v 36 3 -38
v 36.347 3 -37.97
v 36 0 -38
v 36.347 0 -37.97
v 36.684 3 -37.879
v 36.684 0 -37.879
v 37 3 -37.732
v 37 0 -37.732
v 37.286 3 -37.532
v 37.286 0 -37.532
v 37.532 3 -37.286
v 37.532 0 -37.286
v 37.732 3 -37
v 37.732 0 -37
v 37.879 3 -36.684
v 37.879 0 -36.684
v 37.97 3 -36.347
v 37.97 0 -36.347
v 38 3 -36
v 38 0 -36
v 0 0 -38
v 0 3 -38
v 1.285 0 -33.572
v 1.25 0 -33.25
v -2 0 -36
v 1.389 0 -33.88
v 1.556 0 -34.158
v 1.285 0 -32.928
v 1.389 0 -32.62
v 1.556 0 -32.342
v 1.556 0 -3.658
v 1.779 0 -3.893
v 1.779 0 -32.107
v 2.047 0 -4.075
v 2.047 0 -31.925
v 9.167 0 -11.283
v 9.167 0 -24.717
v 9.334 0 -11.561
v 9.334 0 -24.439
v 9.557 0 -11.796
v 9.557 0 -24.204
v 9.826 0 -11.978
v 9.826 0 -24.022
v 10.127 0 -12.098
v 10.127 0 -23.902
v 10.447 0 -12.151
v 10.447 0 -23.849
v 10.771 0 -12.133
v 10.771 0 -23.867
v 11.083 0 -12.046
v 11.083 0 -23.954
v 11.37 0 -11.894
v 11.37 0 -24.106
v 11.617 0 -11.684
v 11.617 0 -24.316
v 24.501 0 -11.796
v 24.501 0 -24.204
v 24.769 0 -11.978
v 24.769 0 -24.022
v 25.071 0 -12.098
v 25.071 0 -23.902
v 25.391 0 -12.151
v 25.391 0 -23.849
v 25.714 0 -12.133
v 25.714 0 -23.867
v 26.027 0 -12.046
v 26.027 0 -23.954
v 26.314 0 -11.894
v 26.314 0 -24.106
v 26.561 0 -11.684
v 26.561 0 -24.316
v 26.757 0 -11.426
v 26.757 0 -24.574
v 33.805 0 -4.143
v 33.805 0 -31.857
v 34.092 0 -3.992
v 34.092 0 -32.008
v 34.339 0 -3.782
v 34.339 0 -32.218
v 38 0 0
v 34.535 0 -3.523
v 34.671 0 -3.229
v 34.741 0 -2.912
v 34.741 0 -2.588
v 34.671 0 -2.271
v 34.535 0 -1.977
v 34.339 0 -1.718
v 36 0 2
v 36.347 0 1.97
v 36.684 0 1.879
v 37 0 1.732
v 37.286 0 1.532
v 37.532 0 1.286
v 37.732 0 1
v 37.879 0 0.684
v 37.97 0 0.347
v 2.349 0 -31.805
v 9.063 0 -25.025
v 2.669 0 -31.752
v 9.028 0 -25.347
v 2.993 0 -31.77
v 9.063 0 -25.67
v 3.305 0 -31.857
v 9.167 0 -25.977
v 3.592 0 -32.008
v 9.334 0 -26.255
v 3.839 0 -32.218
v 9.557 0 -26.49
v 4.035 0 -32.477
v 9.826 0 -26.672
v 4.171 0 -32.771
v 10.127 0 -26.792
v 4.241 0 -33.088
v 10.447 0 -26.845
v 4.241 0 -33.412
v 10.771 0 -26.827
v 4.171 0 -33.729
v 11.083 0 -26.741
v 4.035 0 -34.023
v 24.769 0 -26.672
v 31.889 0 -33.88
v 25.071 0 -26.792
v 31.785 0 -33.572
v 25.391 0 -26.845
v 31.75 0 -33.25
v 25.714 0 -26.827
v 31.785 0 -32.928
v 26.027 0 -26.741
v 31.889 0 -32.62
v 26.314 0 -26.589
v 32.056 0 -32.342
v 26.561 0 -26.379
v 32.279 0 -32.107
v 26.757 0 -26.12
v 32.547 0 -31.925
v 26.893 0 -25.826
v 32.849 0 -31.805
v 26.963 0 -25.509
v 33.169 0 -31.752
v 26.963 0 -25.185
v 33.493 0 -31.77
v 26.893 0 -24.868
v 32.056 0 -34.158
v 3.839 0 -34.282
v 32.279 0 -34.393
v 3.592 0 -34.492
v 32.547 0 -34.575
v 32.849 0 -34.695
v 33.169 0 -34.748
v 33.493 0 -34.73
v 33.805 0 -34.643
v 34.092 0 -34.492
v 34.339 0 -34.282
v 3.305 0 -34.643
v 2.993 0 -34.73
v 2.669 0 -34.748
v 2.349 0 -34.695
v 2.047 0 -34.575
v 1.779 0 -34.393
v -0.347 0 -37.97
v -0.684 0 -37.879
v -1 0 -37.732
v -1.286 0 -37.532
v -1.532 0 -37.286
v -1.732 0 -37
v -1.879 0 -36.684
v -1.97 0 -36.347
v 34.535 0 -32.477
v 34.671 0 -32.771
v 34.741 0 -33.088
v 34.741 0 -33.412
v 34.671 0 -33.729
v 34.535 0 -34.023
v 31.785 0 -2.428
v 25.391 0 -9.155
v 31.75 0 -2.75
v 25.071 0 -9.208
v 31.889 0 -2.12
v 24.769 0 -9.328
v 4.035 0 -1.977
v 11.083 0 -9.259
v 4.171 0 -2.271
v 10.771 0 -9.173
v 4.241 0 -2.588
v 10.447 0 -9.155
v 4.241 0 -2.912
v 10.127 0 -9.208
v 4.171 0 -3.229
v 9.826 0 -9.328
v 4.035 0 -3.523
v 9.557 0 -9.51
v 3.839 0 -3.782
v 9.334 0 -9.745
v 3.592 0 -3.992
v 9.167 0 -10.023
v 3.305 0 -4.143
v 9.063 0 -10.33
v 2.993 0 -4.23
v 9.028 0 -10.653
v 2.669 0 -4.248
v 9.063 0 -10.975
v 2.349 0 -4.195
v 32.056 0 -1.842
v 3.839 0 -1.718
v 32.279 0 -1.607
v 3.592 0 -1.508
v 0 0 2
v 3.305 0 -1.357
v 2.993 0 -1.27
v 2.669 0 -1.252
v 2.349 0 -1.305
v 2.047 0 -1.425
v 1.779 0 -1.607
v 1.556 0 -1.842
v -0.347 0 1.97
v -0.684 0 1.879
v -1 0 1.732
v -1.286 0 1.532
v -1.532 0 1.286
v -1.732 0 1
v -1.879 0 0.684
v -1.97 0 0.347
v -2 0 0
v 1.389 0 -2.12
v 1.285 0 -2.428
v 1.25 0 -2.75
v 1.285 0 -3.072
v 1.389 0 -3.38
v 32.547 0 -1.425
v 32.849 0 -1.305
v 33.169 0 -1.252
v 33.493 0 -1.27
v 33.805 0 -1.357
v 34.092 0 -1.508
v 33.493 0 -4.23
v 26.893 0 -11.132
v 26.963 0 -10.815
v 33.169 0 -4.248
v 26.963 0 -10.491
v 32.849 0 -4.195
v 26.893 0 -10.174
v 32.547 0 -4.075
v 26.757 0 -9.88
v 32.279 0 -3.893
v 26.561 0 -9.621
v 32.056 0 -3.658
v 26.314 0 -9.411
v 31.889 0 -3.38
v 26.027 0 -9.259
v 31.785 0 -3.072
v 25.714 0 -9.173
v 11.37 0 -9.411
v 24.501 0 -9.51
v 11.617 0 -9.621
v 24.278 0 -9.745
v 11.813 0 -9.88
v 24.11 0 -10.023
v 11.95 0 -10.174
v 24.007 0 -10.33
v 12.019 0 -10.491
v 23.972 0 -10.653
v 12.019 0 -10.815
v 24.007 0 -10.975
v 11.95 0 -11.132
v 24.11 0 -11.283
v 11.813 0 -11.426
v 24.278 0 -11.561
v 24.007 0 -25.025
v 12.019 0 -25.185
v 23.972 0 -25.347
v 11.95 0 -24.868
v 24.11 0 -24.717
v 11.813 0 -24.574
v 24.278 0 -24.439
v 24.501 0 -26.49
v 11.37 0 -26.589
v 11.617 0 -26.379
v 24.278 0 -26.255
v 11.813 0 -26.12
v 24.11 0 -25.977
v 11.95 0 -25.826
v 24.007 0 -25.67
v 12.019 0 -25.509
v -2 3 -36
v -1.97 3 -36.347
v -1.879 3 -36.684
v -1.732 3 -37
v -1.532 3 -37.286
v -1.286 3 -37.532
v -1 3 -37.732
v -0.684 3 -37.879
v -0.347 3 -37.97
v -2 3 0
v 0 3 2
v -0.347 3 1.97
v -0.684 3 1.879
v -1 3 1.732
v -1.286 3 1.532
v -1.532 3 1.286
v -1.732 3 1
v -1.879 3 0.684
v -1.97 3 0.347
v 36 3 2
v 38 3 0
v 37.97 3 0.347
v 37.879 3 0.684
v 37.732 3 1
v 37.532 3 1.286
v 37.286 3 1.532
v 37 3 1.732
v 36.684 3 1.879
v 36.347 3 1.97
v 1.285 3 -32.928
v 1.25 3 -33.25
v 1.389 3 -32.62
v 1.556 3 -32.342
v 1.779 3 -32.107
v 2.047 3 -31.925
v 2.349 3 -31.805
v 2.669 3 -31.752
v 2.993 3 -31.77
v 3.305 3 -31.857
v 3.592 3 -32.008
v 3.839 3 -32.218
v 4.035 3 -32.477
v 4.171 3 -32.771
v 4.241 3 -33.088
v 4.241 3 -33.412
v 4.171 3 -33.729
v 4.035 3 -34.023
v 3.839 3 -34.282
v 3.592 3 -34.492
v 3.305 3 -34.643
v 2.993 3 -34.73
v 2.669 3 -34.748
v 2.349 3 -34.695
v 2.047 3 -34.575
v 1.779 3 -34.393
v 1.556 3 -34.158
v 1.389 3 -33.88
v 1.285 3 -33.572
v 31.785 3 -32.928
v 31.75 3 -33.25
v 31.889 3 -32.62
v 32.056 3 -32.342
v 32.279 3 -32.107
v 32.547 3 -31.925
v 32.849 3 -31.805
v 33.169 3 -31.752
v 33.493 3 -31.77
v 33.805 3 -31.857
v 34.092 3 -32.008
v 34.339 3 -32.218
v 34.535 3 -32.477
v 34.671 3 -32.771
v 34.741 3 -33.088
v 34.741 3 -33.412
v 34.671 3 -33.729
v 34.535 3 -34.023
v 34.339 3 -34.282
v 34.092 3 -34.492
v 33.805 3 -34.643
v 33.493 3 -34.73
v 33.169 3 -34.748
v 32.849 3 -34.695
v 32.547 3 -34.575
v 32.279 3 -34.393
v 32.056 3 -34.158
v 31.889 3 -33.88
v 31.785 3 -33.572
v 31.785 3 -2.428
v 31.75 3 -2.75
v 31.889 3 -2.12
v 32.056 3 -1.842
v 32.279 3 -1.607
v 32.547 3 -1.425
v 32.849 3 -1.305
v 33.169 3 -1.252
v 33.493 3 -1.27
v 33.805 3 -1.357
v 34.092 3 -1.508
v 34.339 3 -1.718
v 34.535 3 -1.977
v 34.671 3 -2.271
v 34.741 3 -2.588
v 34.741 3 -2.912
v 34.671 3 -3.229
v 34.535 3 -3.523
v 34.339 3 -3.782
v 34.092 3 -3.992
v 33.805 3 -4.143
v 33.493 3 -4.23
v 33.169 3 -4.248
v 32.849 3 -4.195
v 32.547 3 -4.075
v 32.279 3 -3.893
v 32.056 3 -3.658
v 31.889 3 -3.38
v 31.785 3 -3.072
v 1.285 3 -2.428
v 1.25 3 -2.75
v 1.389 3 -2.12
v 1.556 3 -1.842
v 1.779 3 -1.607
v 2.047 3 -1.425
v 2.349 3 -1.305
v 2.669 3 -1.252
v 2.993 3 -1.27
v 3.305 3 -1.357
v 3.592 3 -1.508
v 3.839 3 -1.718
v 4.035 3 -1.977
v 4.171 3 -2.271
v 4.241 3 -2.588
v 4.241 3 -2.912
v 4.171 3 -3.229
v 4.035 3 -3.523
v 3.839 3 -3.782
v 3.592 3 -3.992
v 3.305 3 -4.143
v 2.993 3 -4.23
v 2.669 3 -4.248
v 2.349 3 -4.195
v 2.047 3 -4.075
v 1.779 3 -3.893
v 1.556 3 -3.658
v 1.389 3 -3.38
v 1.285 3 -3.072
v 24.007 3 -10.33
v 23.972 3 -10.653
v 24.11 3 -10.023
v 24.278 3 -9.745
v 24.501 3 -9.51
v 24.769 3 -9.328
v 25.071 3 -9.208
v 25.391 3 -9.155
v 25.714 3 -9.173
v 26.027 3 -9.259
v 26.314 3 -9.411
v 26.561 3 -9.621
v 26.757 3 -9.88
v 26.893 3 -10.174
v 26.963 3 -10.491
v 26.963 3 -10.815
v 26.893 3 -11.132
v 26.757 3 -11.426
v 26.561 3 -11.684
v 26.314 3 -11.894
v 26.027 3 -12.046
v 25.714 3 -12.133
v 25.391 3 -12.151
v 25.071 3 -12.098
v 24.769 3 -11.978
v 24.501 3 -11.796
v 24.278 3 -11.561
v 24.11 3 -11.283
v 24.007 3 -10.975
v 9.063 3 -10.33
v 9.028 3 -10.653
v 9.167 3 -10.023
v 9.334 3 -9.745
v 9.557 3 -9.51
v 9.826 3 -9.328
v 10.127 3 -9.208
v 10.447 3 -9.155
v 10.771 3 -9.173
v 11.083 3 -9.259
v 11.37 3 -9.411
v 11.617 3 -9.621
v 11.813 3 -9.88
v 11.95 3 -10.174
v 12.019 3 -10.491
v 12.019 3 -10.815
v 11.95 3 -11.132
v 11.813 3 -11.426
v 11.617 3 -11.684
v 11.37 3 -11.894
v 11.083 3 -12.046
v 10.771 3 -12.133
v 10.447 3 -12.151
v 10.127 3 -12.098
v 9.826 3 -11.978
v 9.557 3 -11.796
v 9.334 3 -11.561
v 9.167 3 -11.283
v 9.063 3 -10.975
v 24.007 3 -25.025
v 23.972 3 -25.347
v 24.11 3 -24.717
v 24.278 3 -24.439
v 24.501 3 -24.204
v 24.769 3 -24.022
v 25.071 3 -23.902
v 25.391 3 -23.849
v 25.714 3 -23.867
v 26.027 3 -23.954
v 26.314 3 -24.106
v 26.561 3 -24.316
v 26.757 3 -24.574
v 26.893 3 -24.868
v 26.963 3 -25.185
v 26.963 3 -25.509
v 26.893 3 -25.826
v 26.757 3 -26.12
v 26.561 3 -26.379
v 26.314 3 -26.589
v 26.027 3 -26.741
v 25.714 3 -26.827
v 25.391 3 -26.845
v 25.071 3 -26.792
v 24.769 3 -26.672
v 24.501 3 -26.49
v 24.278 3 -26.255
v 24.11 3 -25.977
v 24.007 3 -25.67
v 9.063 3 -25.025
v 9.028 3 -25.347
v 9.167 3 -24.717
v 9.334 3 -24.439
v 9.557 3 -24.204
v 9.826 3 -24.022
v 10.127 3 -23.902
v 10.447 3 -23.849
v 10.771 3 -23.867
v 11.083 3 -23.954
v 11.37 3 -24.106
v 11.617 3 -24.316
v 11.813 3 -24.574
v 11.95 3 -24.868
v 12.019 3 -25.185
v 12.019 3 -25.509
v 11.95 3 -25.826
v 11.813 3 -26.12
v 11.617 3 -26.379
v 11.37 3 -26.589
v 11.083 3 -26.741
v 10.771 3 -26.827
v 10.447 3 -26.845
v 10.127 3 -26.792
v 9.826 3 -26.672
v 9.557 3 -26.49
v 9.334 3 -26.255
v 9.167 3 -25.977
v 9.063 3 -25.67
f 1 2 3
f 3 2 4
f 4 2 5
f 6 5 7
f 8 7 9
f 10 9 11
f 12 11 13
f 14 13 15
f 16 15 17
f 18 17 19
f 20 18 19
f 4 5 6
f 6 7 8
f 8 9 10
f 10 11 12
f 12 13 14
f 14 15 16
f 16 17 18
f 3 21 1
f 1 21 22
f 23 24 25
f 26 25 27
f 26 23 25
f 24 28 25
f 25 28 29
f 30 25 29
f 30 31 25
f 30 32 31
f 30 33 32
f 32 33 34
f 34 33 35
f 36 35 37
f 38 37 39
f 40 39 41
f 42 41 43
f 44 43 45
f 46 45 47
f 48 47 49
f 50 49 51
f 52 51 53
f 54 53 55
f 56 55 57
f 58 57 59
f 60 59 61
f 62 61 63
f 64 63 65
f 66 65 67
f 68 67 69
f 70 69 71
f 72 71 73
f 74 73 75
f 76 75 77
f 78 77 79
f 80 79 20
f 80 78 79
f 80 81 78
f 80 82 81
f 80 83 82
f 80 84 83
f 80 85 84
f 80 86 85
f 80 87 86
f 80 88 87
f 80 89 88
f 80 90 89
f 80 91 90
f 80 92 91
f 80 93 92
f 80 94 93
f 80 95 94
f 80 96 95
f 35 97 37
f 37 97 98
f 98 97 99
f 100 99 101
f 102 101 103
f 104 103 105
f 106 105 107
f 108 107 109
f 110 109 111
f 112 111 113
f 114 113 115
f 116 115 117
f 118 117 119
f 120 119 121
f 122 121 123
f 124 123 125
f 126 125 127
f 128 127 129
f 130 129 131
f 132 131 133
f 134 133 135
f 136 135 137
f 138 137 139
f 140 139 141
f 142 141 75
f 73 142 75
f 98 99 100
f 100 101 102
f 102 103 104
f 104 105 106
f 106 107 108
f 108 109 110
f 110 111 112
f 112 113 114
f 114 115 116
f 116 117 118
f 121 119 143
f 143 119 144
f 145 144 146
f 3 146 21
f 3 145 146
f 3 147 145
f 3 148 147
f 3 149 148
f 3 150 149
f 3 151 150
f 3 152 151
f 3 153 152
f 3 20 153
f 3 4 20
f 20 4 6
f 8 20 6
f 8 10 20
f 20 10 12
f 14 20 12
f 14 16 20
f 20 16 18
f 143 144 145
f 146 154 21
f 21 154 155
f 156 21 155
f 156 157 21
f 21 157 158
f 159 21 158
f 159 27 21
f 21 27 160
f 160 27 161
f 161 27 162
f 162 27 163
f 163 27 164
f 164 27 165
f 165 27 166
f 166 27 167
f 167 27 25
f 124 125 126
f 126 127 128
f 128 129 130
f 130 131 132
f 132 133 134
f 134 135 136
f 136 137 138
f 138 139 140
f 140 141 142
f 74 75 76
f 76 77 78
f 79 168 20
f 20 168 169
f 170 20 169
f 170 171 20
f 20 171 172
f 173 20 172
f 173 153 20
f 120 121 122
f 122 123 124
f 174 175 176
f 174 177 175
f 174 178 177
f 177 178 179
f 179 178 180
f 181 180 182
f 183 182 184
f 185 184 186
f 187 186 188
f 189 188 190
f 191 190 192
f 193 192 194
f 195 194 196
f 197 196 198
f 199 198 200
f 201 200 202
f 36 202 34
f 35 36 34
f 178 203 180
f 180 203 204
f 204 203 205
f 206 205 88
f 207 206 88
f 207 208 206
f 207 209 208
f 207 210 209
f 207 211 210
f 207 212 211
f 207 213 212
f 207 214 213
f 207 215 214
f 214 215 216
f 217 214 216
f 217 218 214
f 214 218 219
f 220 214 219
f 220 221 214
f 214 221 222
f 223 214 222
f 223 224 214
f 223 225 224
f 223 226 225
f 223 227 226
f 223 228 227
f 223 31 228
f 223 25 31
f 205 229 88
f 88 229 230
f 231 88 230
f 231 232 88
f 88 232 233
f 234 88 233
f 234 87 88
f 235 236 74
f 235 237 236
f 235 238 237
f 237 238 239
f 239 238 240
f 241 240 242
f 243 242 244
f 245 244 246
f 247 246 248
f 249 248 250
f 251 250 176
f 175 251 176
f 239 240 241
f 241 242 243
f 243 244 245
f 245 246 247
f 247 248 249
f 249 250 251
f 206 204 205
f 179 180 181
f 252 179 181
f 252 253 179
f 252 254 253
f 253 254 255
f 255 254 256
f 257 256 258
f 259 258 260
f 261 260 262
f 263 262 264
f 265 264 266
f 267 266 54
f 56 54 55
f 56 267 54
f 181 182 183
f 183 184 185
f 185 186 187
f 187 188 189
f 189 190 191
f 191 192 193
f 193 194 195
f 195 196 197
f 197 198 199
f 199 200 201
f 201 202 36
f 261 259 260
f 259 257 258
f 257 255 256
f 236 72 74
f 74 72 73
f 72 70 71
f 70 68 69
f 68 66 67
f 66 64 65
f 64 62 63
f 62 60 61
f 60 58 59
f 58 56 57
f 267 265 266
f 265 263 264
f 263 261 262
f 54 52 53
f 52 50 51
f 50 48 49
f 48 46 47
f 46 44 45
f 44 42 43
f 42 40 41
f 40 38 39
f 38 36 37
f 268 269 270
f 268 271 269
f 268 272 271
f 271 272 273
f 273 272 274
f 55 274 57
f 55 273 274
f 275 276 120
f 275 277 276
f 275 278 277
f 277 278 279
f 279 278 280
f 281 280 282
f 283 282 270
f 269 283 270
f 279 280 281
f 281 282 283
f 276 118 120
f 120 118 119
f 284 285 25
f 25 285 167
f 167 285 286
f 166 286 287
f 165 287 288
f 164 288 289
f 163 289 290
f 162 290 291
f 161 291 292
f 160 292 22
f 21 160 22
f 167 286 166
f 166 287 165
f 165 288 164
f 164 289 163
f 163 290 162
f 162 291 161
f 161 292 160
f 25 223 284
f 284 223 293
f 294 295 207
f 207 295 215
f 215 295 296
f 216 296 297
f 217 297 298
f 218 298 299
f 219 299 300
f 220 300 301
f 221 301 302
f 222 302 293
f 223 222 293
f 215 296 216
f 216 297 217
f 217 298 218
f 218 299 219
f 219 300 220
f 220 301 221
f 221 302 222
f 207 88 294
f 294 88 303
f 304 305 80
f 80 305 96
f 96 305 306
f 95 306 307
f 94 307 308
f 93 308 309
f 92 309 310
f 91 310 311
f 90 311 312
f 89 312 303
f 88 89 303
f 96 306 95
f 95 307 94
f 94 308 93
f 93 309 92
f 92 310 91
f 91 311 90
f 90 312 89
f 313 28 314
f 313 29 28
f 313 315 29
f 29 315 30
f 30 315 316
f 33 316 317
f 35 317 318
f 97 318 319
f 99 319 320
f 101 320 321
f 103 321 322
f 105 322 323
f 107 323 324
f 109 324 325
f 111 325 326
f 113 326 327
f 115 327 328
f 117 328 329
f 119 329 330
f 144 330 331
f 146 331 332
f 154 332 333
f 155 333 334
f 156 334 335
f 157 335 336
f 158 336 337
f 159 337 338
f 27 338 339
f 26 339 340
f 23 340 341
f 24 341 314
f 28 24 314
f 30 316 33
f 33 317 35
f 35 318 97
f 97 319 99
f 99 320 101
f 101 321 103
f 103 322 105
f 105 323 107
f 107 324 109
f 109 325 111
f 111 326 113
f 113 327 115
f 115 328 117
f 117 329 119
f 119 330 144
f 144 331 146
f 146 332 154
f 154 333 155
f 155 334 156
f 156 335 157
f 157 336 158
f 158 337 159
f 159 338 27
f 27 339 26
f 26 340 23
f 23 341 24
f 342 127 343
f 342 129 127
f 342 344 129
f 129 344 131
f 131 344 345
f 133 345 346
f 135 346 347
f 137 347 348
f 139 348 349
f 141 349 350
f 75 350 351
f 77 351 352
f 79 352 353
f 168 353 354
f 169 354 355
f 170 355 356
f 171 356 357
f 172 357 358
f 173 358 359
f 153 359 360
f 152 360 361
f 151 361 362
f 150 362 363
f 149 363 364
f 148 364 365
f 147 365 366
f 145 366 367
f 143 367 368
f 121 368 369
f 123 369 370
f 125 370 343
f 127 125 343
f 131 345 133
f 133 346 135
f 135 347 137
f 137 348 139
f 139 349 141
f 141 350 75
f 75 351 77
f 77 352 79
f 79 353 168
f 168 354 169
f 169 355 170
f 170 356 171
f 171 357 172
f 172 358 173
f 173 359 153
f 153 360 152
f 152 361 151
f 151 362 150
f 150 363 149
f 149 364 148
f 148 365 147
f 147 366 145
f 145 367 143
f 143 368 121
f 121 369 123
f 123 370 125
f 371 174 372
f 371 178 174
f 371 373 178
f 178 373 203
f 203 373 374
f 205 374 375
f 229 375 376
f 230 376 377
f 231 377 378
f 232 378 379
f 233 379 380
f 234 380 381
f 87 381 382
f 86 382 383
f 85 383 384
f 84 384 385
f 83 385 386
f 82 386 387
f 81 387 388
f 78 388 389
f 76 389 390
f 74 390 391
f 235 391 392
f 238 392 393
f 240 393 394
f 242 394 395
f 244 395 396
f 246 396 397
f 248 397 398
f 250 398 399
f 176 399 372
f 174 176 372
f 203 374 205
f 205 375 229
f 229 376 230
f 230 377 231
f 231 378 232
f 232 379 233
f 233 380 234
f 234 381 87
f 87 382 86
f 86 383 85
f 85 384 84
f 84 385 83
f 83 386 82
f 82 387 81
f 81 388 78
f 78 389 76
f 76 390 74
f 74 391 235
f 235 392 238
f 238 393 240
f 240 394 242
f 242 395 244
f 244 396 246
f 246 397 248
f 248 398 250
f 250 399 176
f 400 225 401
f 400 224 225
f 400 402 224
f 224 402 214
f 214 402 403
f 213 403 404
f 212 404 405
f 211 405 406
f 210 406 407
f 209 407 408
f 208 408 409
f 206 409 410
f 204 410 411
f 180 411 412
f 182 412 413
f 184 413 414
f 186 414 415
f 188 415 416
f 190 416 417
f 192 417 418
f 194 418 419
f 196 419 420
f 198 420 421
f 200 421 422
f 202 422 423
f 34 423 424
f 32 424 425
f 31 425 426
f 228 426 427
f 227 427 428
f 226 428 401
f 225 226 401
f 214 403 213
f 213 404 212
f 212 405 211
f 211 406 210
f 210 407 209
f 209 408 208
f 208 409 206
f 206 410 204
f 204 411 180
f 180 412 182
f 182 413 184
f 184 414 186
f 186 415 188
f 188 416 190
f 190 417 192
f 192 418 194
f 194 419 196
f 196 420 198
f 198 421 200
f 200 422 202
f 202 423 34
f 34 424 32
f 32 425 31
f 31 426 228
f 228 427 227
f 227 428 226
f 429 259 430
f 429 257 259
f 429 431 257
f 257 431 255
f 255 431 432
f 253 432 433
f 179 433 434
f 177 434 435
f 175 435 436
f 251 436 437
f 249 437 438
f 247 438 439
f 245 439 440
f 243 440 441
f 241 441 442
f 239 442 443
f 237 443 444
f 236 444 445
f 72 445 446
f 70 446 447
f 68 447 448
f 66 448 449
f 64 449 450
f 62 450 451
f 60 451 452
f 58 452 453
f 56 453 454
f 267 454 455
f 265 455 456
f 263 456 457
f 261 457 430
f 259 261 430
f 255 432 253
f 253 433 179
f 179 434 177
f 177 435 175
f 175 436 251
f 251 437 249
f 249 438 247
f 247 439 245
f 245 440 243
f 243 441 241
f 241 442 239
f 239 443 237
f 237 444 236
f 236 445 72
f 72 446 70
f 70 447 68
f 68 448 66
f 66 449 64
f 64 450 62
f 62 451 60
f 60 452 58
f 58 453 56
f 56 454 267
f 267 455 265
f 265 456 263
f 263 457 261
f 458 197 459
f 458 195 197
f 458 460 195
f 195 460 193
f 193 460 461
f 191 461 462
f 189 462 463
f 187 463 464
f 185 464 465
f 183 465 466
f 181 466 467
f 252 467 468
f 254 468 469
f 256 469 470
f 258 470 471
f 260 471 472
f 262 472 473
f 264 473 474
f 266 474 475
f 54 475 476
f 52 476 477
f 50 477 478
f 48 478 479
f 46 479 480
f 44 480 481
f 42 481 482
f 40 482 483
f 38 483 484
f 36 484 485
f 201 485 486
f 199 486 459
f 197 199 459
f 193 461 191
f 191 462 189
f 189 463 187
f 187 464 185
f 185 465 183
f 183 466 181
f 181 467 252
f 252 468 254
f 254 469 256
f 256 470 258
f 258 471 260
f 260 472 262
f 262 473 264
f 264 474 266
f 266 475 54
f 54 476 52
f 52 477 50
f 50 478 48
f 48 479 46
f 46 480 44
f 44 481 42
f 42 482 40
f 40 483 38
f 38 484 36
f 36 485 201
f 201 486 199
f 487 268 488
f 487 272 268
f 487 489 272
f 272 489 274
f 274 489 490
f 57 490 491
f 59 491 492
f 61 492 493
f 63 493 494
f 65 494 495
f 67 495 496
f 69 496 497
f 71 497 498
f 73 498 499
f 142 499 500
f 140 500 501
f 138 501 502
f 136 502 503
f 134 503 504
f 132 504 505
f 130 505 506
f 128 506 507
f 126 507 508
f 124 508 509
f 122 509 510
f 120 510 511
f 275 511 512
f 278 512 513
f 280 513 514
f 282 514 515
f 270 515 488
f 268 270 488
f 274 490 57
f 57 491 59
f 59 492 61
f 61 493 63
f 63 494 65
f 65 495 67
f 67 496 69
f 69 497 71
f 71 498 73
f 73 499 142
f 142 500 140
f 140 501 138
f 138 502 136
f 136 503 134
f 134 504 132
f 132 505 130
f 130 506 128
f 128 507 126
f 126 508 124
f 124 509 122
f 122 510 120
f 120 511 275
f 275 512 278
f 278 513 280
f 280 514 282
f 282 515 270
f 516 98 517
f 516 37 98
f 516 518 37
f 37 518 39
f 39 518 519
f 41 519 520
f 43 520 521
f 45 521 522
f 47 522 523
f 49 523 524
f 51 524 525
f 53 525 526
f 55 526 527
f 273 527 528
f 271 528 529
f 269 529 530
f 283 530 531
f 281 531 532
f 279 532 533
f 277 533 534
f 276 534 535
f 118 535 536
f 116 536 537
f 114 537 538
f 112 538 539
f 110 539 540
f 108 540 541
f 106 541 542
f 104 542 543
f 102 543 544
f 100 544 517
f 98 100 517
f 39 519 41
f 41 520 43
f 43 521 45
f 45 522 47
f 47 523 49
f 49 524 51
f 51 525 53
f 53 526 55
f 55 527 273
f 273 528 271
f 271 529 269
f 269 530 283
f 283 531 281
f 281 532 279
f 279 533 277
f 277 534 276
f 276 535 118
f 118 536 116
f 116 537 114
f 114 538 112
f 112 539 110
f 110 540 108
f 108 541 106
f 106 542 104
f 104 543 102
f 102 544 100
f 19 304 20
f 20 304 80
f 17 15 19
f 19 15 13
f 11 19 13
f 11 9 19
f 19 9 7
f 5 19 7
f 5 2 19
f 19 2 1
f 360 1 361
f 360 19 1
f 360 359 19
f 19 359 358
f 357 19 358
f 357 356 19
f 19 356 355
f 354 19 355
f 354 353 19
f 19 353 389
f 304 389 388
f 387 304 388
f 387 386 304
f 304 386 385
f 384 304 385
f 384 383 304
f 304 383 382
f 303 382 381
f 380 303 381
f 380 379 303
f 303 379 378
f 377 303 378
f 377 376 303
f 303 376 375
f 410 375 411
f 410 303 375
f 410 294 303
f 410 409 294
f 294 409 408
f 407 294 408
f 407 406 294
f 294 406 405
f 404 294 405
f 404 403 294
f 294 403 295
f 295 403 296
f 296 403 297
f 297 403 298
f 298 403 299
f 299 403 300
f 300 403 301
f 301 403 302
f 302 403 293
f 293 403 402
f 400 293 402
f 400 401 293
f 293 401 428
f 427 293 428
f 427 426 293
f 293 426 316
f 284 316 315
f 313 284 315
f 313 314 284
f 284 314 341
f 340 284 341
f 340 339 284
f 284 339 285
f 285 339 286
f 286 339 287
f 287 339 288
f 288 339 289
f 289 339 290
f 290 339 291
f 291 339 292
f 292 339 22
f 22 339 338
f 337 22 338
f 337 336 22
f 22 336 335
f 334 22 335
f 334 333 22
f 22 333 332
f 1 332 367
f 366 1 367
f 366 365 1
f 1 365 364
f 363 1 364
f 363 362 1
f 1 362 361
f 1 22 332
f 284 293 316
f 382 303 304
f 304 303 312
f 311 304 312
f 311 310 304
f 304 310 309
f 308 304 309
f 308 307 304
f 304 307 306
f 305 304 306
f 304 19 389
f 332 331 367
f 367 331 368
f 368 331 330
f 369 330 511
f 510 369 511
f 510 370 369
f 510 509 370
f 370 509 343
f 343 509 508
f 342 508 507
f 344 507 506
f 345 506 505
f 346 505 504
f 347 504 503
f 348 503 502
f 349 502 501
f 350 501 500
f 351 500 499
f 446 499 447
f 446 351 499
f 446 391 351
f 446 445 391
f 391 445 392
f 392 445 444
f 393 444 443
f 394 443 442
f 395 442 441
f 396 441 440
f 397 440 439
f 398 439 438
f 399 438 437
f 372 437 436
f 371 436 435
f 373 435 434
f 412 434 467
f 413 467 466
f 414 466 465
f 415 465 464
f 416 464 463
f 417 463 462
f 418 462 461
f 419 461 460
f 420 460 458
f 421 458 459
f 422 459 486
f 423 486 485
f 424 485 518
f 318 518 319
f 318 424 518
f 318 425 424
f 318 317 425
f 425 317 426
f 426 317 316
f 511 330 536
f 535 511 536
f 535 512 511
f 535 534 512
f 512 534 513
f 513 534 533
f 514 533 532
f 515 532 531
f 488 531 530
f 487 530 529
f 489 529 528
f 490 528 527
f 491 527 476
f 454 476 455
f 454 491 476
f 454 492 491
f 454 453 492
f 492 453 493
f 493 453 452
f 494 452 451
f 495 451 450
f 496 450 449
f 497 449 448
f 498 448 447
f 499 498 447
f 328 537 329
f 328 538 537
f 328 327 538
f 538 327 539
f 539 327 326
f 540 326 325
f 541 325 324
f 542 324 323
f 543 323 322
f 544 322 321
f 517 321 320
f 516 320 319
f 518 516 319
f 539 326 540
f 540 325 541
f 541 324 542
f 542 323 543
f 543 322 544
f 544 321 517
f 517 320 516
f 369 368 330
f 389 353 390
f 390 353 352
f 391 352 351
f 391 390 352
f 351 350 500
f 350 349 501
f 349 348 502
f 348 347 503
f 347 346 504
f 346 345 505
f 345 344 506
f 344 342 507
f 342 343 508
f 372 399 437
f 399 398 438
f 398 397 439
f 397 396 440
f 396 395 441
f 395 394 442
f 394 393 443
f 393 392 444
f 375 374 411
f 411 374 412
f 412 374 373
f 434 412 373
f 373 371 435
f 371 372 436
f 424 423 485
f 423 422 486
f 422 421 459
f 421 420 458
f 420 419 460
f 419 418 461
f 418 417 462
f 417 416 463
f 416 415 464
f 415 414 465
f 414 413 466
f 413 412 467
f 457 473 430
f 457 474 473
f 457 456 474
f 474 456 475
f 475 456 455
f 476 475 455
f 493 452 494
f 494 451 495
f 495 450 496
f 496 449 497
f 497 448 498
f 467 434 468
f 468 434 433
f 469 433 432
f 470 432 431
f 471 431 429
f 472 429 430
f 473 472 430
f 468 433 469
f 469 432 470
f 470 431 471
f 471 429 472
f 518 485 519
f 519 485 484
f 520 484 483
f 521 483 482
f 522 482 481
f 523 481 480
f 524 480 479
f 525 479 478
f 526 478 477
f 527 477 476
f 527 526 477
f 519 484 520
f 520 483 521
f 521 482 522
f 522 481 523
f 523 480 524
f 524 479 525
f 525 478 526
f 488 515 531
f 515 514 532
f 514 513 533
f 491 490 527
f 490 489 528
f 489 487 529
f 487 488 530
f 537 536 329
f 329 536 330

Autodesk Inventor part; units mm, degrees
ref_plane "YZ Plane" through (0, 0, 0) normal (1, 0, 0) x (0, 1, 0)
ref_plane "XZ Plane" through (0, 0, 0) normal (0, 1, 0) x (-1, 0, 0)
ref_plane "XY Plane" through (0, 0, 0) normal (0, 0, 1) x (1, 0, 0)
sketch "Sketch1" plane through (0, 0, 0) normal (0, 1, 0) x (-1, 0, 0)
  line L0 (0, 0) -> (-36, 0)
  line L1 (-36, 0) -> (-36, -36)
  line L2 (-36, -36) -> (0, -36)
  line L3 (0, -36) -> (0, 0)
  circle A0 centre (-10.5282, -25.3471) radius 1.5
  circle A1 centre (-25.4718, -25.3471) radius 1.5
  circle A2 centre (-10.5282, -10.6529) radius 1.5
  circle A3 centre (-25.4718, -10.6529) radius 1.5
  line L4 (2, -38) -> (2, 2)
  line L5 (2, 2) -> (-38, 2)
  line L6 (-38, 2) -> (-38, -38)
  line L7 (-38, -38) -> (2, -38)
  circle A4 centre (-2.75, -2.75) radius 1.5
  circle A5 centre (-33.25, -2.75) radius 1.5
  circle A6 centre (-33.25, -33.25) radius 1.5
  circle A7 centre (-2.75, -33.25) radius 1.5
  dimension "d0" = 36
  dimension "d1" = 36
  dimension "d50" = 40
  dimension "d51" = 40
  dimension "d55" = 3
  dimension "d56" = 3
  dimension "d57" = 3
  dimension "d58" = 3
extrude "Extrusion3" add sketch "Sketch1" along normal blind 3 contours L3 L2 L1 L0 | L7 L6 L5 L4
fillet "Fillet2" radius 2 4 edges at (38, 1.5, 2) (-2, 1.5, 2) (-2, 1.5, -38) (38, 1.5, -38)
properties part number "Topp"
